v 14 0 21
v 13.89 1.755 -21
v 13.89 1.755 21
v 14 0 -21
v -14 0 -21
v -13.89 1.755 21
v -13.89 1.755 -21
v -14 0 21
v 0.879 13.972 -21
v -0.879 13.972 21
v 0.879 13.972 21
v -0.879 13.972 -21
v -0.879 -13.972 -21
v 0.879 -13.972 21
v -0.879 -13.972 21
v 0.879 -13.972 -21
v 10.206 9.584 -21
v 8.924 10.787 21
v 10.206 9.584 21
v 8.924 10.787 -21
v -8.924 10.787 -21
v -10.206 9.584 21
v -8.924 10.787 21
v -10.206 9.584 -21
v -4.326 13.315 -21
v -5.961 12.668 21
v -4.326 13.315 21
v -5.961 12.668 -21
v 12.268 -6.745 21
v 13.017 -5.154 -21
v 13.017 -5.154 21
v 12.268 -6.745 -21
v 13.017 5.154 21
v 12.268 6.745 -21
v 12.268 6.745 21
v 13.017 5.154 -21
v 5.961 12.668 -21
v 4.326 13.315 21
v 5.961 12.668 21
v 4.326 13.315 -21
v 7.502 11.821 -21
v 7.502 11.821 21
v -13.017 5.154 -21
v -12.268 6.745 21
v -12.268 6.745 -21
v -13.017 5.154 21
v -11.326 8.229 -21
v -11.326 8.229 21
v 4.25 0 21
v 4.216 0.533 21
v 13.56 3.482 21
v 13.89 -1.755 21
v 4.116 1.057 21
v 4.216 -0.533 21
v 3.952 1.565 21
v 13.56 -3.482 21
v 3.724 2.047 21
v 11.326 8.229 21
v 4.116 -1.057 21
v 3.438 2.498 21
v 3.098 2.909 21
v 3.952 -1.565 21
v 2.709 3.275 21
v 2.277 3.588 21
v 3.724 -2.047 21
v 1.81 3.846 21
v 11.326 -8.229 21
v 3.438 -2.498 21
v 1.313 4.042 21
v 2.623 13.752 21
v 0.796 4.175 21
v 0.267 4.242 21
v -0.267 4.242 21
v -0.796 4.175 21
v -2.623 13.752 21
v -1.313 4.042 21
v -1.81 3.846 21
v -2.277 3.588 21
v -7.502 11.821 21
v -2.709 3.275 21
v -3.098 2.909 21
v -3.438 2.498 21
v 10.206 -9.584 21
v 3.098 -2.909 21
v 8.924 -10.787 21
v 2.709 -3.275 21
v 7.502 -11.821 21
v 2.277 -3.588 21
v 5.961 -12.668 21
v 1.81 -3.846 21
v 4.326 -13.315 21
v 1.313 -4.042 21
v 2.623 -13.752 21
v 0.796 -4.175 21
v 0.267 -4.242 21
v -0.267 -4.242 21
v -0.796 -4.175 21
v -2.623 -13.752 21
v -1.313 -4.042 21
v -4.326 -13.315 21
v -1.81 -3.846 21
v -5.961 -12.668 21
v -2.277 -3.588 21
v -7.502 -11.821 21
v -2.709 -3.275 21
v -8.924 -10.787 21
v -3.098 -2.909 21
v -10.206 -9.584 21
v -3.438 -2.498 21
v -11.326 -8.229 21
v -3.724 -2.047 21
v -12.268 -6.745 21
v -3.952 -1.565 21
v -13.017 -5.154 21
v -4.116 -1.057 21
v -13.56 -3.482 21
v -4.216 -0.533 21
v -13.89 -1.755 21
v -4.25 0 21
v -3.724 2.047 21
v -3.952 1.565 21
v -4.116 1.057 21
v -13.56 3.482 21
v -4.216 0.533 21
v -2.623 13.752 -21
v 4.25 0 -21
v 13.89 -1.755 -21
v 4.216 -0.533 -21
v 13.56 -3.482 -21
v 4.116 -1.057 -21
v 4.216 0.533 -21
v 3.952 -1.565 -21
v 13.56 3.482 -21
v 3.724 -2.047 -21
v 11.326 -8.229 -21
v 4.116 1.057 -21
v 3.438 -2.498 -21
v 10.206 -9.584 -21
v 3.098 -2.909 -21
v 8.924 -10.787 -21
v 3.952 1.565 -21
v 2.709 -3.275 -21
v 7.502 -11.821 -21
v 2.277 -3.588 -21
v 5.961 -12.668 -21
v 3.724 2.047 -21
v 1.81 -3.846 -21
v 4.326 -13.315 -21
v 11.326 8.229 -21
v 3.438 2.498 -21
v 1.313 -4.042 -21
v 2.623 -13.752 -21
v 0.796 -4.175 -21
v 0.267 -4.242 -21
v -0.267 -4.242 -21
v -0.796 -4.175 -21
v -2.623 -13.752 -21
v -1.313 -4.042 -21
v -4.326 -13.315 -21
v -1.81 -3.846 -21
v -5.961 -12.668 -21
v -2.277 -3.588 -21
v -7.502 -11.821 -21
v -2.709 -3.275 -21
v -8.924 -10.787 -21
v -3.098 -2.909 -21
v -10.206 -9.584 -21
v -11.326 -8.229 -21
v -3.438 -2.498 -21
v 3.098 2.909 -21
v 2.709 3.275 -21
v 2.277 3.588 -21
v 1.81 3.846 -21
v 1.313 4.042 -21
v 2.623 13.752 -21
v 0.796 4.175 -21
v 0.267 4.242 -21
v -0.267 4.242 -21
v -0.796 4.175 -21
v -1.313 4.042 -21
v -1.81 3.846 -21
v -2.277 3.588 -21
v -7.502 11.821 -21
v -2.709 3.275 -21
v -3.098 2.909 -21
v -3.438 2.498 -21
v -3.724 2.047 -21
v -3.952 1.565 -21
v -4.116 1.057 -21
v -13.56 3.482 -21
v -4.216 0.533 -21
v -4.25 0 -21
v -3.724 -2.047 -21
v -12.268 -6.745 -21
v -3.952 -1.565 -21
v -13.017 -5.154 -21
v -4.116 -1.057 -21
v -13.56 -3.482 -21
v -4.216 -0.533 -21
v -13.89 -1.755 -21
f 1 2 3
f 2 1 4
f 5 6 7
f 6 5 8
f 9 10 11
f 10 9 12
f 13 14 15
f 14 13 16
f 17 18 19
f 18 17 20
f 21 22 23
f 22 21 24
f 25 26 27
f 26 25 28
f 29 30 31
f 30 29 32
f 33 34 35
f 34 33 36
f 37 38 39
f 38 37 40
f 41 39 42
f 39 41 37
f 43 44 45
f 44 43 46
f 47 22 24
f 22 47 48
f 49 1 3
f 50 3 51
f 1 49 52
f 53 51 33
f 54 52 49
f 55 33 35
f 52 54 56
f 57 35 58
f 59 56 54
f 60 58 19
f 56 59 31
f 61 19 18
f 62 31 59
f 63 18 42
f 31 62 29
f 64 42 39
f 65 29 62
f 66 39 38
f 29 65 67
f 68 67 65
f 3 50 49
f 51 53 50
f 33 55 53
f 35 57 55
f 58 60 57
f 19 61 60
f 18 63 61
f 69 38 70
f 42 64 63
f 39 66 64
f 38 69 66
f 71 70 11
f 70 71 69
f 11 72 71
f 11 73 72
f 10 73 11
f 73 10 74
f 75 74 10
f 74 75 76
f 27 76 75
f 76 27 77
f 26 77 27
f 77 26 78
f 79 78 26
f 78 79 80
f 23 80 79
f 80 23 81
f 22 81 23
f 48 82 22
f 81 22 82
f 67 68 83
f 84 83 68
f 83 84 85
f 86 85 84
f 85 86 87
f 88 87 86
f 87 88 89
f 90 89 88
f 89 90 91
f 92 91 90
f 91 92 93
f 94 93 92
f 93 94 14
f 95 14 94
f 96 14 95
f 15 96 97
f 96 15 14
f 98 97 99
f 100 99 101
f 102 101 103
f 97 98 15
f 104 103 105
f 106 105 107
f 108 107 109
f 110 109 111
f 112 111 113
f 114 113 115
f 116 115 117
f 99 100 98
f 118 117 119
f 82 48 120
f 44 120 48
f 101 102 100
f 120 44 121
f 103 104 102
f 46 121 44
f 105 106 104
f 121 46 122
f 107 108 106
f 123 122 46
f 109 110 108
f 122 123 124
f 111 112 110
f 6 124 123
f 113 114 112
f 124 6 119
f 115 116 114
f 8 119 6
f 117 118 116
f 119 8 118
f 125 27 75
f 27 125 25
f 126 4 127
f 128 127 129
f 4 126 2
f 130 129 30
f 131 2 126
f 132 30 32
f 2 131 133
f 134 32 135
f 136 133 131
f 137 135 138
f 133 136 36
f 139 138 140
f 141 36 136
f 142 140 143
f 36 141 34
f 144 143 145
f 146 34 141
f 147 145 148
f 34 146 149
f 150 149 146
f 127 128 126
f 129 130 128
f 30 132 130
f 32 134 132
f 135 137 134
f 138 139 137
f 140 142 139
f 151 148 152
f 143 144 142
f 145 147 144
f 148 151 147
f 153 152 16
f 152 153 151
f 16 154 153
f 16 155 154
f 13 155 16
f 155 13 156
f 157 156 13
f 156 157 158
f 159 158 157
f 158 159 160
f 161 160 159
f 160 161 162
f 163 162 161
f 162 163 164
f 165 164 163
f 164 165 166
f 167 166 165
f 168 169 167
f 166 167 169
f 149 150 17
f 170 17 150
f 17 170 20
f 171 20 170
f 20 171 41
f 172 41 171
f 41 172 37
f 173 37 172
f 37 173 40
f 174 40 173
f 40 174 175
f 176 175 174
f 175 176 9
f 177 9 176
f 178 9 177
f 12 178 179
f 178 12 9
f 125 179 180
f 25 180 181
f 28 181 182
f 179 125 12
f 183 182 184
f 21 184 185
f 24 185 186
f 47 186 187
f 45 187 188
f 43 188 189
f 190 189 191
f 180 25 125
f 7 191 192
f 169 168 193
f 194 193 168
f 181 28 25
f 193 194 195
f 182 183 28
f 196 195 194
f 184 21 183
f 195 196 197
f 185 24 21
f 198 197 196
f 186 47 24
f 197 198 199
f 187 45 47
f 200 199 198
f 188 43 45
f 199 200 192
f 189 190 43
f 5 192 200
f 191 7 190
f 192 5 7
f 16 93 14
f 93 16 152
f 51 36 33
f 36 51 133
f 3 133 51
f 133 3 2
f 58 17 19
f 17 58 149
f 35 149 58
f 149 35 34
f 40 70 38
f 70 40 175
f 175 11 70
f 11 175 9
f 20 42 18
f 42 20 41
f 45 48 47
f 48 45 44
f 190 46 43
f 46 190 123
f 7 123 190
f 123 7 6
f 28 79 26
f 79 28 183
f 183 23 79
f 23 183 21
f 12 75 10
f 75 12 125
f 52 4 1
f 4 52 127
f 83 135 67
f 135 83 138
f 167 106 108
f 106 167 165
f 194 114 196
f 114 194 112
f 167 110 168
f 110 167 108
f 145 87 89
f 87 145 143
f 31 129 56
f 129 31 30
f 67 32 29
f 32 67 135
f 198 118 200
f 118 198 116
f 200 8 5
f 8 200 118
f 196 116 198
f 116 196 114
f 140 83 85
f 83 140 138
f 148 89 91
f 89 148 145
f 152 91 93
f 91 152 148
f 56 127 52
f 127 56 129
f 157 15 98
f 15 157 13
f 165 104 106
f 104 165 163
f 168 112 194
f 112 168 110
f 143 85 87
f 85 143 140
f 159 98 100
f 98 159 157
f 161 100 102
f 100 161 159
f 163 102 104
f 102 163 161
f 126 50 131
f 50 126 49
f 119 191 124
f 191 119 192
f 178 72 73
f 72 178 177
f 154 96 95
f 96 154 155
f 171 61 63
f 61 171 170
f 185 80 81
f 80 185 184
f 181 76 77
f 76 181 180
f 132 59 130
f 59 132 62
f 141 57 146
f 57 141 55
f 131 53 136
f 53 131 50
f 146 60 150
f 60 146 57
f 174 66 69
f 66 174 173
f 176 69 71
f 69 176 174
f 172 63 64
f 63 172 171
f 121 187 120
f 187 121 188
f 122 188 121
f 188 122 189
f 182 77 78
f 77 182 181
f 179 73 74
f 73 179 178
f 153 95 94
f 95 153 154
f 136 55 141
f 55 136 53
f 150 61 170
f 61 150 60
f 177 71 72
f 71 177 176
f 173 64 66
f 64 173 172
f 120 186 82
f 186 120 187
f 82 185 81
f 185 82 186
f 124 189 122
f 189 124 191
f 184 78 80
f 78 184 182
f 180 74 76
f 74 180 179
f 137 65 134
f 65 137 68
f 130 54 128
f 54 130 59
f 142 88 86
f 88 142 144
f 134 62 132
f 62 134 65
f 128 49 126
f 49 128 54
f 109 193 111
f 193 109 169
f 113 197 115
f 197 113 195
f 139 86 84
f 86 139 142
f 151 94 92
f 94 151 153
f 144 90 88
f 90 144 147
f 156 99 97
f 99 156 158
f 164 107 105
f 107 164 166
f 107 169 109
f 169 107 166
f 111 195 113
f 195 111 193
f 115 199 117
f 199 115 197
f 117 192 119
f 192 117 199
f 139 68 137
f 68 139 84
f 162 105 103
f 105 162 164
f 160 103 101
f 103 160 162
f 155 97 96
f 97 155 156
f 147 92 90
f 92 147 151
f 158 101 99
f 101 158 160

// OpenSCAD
$fn = 50;


difference() {
	union() {
		translate(v = [0, 0, -21.0000000000]) {
			cylinder(h = 42, r = 14.0000000000);
		}
	}
	union() {
		translate(v = [0, 0, -100.0000000000]) {
			cylinder(h = 200, r = 4.2500000000);
		}
	}
}
